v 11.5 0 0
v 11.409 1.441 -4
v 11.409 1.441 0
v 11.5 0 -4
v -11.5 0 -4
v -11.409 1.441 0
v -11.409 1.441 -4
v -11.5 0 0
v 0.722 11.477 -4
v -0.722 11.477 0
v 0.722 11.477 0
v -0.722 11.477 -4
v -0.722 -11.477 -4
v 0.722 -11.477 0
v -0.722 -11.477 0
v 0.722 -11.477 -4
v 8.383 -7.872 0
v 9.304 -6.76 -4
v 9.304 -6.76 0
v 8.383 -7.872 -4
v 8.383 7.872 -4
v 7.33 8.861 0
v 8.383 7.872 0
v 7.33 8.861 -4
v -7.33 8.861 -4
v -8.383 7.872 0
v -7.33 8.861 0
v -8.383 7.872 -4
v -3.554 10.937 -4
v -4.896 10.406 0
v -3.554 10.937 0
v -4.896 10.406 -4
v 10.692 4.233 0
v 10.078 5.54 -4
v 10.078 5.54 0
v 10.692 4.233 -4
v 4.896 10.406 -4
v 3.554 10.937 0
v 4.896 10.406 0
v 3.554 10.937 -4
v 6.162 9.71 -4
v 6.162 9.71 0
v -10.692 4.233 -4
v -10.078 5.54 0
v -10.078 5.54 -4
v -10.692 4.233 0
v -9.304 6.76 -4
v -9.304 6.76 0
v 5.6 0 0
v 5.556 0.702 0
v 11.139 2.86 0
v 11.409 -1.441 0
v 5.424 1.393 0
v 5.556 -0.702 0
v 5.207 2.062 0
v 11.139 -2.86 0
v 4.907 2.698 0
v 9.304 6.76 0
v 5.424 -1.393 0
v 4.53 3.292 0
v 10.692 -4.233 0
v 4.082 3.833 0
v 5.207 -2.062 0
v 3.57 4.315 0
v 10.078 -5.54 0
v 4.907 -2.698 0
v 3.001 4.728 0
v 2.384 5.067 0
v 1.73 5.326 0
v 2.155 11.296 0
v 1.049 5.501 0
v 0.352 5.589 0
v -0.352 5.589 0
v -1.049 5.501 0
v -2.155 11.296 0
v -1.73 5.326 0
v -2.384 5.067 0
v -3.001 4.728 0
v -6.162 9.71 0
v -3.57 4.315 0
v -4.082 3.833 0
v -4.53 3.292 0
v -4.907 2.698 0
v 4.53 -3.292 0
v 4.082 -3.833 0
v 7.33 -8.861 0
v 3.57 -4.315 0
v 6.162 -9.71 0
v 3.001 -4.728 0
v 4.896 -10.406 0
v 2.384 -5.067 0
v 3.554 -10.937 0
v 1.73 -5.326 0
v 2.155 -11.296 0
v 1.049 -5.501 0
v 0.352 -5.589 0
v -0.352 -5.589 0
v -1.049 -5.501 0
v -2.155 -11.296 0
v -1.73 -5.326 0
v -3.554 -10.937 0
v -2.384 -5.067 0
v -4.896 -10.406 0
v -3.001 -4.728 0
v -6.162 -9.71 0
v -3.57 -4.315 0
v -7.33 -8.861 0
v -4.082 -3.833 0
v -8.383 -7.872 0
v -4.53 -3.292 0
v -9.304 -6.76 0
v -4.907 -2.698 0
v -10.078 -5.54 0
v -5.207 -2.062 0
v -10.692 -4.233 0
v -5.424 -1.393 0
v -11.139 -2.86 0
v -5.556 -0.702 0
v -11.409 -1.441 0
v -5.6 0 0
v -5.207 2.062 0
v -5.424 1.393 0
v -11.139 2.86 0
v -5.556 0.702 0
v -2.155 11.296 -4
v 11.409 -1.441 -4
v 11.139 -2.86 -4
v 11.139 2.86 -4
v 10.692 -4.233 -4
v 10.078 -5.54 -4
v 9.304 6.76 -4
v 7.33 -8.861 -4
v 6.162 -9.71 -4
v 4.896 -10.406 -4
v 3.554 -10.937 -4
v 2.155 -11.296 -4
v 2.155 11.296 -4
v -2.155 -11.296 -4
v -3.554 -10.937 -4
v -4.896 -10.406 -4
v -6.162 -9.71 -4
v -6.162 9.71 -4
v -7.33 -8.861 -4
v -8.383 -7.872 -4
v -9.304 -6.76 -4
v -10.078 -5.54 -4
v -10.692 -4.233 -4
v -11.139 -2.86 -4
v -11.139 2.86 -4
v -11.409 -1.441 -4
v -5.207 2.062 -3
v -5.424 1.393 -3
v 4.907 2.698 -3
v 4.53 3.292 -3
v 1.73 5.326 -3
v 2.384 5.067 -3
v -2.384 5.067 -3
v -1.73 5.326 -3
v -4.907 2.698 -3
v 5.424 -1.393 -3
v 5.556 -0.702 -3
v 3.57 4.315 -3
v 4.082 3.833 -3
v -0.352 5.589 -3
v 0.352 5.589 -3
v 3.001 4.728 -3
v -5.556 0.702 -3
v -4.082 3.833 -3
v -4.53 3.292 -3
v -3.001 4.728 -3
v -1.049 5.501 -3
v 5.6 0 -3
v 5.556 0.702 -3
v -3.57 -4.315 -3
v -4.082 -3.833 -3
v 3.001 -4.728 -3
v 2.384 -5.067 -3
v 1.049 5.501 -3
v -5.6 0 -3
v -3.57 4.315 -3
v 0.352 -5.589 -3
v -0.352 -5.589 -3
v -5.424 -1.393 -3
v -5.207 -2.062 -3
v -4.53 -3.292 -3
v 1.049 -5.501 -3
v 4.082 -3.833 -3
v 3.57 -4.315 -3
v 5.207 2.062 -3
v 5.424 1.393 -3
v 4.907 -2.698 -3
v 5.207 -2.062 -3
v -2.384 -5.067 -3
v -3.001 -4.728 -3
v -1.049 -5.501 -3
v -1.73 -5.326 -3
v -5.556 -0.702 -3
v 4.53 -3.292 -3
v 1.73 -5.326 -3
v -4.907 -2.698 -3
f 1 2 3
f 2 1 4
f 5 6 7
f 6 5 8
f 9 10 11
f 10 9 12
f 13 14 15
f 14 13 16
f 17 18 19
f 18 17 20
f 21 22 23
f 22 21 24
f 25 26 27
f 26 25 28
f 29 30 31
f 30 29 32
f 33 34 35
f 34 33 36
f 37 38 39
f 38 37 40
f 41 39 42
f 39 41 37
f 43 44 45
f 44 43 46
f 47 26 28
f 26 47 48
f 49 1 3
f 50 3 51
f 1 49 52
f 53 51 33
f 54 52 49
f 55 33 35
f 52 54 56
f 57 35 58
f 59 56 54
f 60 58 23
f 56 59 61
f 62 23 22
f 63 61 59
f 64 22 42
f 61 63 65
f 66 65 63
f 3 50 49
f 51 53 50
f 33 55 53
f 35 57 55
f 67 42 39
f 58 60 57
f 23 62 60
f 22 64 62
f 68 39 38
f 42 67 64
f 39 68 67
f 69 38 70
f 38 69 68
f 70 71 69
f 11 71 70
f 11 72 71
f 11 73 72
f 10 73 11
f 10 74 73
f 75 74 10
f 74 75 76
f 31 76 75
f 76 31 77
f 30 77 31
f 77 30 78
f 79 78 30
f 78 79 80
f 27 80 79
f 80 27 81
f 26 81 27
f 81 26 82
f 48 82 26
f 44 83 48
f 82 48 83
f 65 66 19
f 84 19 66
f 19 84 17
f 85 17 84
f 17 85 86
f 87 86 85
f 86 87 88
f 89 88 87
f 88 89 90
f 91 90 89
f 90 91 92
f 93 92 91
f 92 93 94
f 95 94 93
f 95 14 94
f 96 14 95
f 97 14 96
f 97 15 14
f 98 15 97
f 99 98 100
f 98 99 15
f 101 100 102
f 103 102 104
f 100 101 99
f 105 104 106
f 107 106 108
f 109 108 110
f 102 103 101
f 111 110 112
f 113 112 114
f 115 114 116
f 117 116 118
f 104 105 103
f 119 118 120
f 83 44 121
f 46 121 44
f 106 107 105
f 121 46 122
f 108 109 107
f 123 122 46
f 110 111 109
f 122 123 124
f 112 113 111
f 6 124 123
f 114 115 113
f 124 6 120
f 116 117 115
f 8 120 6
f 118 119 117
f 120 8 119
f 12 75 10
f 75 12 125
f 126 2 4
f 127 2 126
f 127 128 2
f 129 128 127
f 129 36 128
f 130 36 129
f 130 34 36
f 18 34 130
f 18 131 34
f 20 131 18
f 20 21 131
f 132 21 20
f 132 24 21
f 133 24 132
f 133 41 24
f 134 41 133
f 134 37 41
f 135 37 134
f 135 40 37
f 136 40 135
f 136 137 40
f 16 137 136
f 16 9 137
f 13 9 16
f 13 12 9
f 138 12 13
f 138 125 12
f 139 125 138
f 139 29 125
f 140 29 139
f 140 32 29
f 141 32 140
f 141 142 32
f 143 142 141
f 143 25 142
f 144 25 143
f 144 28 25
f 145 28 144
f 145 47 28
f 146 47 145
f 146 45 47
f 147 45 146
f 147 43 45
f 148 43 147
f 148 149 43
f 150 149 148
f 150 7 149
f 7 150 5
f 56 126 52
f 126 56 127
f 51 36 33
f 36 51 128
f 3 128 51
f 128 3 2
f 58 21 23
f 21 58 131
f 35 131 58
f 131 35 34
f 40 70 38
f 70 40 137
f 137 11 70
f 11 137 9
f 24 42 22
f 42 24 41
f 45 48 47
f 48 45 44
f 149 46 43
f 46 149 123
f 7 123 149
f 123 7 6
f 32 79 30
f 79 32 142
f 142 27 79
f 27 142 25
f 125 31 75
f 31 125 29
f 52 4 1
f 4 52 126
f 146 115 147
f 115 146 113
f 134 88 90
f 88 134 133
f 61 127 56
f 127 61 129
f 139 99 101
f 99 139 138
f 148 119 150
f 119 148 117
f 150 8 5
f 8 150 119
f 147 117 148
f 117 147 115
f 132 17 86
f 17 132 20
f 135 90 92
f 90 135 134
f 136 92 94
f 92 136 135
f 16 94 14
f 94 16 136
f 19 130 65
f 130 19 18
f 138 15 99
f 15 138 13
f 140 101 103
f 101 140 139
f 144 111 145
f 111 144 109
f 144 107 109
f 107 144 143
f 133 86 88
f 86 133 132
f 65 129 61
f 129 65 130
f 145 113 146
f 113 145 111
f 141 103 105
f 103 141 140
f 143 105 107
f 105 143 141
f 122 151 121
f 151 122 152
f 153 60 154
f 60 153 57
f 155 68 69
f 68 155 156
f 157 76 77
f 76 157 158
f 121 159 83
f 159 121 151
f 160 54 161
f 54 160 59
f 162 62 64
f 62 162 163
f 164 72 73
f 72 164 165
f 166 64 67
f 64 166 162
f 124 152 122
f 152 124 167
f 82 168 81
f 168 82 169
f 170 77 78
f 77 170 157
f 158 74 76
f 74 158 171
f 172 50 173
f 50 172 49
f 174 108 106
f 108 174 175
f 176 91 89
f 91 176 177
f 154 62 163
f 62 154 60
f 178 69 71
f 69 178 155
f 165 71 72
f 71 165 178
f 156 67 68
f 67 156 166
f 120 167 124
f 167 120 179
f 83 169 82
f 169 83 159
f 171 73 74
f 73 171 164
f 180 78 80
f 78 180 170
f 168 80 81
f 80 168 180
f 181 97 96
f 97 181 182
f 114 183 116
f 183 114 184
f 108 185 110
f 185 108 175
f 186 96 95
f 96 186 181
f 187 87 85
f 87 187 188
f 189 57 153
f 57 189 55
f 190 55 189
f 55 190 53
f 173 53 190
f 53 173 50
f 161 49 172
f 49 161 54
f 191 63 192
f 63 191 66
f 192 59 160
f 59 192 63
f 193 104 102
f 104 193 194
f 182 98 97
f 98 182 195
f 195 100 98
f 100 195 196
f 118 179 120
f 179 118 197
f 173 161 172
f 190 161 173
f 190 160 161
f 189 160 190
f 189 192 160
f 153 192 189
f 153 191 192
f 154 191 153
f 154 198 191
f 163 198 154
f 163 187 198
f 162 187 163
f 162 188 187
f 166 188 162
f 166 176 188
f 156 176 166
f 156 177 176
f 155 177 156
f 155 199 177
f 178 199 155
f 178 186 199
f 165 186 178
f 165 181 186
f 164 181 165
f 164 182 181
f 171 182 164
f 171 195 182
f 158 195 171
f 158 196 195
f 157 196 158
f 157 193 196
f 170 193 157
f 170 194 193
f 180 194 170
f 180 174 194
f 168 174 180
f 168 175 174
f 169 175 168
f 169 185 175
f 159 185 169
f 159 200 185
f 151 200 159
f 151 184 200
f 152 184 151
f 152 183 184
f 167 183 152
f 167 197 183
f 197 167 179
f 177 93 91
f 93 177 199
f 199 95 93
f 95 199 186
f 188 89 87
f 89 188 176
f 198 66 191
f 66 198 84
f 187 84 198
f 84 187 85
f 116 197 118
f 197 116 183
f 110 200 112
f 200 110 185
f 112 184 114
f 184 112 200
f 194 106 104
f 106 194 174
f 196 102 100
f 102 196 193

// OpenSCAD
$fn = 50;


difference() {
	union() {
		translate(v = [0, 0, -4.0000000000]) {
			cylinder(h = 4, r = 11.5000000000);
		}
	}
	union() {
		#translate(v = [0, 0, -3.0000000000]) {
			cylinder(h = 3, r = 5.6000000000);
		}
	}
}
